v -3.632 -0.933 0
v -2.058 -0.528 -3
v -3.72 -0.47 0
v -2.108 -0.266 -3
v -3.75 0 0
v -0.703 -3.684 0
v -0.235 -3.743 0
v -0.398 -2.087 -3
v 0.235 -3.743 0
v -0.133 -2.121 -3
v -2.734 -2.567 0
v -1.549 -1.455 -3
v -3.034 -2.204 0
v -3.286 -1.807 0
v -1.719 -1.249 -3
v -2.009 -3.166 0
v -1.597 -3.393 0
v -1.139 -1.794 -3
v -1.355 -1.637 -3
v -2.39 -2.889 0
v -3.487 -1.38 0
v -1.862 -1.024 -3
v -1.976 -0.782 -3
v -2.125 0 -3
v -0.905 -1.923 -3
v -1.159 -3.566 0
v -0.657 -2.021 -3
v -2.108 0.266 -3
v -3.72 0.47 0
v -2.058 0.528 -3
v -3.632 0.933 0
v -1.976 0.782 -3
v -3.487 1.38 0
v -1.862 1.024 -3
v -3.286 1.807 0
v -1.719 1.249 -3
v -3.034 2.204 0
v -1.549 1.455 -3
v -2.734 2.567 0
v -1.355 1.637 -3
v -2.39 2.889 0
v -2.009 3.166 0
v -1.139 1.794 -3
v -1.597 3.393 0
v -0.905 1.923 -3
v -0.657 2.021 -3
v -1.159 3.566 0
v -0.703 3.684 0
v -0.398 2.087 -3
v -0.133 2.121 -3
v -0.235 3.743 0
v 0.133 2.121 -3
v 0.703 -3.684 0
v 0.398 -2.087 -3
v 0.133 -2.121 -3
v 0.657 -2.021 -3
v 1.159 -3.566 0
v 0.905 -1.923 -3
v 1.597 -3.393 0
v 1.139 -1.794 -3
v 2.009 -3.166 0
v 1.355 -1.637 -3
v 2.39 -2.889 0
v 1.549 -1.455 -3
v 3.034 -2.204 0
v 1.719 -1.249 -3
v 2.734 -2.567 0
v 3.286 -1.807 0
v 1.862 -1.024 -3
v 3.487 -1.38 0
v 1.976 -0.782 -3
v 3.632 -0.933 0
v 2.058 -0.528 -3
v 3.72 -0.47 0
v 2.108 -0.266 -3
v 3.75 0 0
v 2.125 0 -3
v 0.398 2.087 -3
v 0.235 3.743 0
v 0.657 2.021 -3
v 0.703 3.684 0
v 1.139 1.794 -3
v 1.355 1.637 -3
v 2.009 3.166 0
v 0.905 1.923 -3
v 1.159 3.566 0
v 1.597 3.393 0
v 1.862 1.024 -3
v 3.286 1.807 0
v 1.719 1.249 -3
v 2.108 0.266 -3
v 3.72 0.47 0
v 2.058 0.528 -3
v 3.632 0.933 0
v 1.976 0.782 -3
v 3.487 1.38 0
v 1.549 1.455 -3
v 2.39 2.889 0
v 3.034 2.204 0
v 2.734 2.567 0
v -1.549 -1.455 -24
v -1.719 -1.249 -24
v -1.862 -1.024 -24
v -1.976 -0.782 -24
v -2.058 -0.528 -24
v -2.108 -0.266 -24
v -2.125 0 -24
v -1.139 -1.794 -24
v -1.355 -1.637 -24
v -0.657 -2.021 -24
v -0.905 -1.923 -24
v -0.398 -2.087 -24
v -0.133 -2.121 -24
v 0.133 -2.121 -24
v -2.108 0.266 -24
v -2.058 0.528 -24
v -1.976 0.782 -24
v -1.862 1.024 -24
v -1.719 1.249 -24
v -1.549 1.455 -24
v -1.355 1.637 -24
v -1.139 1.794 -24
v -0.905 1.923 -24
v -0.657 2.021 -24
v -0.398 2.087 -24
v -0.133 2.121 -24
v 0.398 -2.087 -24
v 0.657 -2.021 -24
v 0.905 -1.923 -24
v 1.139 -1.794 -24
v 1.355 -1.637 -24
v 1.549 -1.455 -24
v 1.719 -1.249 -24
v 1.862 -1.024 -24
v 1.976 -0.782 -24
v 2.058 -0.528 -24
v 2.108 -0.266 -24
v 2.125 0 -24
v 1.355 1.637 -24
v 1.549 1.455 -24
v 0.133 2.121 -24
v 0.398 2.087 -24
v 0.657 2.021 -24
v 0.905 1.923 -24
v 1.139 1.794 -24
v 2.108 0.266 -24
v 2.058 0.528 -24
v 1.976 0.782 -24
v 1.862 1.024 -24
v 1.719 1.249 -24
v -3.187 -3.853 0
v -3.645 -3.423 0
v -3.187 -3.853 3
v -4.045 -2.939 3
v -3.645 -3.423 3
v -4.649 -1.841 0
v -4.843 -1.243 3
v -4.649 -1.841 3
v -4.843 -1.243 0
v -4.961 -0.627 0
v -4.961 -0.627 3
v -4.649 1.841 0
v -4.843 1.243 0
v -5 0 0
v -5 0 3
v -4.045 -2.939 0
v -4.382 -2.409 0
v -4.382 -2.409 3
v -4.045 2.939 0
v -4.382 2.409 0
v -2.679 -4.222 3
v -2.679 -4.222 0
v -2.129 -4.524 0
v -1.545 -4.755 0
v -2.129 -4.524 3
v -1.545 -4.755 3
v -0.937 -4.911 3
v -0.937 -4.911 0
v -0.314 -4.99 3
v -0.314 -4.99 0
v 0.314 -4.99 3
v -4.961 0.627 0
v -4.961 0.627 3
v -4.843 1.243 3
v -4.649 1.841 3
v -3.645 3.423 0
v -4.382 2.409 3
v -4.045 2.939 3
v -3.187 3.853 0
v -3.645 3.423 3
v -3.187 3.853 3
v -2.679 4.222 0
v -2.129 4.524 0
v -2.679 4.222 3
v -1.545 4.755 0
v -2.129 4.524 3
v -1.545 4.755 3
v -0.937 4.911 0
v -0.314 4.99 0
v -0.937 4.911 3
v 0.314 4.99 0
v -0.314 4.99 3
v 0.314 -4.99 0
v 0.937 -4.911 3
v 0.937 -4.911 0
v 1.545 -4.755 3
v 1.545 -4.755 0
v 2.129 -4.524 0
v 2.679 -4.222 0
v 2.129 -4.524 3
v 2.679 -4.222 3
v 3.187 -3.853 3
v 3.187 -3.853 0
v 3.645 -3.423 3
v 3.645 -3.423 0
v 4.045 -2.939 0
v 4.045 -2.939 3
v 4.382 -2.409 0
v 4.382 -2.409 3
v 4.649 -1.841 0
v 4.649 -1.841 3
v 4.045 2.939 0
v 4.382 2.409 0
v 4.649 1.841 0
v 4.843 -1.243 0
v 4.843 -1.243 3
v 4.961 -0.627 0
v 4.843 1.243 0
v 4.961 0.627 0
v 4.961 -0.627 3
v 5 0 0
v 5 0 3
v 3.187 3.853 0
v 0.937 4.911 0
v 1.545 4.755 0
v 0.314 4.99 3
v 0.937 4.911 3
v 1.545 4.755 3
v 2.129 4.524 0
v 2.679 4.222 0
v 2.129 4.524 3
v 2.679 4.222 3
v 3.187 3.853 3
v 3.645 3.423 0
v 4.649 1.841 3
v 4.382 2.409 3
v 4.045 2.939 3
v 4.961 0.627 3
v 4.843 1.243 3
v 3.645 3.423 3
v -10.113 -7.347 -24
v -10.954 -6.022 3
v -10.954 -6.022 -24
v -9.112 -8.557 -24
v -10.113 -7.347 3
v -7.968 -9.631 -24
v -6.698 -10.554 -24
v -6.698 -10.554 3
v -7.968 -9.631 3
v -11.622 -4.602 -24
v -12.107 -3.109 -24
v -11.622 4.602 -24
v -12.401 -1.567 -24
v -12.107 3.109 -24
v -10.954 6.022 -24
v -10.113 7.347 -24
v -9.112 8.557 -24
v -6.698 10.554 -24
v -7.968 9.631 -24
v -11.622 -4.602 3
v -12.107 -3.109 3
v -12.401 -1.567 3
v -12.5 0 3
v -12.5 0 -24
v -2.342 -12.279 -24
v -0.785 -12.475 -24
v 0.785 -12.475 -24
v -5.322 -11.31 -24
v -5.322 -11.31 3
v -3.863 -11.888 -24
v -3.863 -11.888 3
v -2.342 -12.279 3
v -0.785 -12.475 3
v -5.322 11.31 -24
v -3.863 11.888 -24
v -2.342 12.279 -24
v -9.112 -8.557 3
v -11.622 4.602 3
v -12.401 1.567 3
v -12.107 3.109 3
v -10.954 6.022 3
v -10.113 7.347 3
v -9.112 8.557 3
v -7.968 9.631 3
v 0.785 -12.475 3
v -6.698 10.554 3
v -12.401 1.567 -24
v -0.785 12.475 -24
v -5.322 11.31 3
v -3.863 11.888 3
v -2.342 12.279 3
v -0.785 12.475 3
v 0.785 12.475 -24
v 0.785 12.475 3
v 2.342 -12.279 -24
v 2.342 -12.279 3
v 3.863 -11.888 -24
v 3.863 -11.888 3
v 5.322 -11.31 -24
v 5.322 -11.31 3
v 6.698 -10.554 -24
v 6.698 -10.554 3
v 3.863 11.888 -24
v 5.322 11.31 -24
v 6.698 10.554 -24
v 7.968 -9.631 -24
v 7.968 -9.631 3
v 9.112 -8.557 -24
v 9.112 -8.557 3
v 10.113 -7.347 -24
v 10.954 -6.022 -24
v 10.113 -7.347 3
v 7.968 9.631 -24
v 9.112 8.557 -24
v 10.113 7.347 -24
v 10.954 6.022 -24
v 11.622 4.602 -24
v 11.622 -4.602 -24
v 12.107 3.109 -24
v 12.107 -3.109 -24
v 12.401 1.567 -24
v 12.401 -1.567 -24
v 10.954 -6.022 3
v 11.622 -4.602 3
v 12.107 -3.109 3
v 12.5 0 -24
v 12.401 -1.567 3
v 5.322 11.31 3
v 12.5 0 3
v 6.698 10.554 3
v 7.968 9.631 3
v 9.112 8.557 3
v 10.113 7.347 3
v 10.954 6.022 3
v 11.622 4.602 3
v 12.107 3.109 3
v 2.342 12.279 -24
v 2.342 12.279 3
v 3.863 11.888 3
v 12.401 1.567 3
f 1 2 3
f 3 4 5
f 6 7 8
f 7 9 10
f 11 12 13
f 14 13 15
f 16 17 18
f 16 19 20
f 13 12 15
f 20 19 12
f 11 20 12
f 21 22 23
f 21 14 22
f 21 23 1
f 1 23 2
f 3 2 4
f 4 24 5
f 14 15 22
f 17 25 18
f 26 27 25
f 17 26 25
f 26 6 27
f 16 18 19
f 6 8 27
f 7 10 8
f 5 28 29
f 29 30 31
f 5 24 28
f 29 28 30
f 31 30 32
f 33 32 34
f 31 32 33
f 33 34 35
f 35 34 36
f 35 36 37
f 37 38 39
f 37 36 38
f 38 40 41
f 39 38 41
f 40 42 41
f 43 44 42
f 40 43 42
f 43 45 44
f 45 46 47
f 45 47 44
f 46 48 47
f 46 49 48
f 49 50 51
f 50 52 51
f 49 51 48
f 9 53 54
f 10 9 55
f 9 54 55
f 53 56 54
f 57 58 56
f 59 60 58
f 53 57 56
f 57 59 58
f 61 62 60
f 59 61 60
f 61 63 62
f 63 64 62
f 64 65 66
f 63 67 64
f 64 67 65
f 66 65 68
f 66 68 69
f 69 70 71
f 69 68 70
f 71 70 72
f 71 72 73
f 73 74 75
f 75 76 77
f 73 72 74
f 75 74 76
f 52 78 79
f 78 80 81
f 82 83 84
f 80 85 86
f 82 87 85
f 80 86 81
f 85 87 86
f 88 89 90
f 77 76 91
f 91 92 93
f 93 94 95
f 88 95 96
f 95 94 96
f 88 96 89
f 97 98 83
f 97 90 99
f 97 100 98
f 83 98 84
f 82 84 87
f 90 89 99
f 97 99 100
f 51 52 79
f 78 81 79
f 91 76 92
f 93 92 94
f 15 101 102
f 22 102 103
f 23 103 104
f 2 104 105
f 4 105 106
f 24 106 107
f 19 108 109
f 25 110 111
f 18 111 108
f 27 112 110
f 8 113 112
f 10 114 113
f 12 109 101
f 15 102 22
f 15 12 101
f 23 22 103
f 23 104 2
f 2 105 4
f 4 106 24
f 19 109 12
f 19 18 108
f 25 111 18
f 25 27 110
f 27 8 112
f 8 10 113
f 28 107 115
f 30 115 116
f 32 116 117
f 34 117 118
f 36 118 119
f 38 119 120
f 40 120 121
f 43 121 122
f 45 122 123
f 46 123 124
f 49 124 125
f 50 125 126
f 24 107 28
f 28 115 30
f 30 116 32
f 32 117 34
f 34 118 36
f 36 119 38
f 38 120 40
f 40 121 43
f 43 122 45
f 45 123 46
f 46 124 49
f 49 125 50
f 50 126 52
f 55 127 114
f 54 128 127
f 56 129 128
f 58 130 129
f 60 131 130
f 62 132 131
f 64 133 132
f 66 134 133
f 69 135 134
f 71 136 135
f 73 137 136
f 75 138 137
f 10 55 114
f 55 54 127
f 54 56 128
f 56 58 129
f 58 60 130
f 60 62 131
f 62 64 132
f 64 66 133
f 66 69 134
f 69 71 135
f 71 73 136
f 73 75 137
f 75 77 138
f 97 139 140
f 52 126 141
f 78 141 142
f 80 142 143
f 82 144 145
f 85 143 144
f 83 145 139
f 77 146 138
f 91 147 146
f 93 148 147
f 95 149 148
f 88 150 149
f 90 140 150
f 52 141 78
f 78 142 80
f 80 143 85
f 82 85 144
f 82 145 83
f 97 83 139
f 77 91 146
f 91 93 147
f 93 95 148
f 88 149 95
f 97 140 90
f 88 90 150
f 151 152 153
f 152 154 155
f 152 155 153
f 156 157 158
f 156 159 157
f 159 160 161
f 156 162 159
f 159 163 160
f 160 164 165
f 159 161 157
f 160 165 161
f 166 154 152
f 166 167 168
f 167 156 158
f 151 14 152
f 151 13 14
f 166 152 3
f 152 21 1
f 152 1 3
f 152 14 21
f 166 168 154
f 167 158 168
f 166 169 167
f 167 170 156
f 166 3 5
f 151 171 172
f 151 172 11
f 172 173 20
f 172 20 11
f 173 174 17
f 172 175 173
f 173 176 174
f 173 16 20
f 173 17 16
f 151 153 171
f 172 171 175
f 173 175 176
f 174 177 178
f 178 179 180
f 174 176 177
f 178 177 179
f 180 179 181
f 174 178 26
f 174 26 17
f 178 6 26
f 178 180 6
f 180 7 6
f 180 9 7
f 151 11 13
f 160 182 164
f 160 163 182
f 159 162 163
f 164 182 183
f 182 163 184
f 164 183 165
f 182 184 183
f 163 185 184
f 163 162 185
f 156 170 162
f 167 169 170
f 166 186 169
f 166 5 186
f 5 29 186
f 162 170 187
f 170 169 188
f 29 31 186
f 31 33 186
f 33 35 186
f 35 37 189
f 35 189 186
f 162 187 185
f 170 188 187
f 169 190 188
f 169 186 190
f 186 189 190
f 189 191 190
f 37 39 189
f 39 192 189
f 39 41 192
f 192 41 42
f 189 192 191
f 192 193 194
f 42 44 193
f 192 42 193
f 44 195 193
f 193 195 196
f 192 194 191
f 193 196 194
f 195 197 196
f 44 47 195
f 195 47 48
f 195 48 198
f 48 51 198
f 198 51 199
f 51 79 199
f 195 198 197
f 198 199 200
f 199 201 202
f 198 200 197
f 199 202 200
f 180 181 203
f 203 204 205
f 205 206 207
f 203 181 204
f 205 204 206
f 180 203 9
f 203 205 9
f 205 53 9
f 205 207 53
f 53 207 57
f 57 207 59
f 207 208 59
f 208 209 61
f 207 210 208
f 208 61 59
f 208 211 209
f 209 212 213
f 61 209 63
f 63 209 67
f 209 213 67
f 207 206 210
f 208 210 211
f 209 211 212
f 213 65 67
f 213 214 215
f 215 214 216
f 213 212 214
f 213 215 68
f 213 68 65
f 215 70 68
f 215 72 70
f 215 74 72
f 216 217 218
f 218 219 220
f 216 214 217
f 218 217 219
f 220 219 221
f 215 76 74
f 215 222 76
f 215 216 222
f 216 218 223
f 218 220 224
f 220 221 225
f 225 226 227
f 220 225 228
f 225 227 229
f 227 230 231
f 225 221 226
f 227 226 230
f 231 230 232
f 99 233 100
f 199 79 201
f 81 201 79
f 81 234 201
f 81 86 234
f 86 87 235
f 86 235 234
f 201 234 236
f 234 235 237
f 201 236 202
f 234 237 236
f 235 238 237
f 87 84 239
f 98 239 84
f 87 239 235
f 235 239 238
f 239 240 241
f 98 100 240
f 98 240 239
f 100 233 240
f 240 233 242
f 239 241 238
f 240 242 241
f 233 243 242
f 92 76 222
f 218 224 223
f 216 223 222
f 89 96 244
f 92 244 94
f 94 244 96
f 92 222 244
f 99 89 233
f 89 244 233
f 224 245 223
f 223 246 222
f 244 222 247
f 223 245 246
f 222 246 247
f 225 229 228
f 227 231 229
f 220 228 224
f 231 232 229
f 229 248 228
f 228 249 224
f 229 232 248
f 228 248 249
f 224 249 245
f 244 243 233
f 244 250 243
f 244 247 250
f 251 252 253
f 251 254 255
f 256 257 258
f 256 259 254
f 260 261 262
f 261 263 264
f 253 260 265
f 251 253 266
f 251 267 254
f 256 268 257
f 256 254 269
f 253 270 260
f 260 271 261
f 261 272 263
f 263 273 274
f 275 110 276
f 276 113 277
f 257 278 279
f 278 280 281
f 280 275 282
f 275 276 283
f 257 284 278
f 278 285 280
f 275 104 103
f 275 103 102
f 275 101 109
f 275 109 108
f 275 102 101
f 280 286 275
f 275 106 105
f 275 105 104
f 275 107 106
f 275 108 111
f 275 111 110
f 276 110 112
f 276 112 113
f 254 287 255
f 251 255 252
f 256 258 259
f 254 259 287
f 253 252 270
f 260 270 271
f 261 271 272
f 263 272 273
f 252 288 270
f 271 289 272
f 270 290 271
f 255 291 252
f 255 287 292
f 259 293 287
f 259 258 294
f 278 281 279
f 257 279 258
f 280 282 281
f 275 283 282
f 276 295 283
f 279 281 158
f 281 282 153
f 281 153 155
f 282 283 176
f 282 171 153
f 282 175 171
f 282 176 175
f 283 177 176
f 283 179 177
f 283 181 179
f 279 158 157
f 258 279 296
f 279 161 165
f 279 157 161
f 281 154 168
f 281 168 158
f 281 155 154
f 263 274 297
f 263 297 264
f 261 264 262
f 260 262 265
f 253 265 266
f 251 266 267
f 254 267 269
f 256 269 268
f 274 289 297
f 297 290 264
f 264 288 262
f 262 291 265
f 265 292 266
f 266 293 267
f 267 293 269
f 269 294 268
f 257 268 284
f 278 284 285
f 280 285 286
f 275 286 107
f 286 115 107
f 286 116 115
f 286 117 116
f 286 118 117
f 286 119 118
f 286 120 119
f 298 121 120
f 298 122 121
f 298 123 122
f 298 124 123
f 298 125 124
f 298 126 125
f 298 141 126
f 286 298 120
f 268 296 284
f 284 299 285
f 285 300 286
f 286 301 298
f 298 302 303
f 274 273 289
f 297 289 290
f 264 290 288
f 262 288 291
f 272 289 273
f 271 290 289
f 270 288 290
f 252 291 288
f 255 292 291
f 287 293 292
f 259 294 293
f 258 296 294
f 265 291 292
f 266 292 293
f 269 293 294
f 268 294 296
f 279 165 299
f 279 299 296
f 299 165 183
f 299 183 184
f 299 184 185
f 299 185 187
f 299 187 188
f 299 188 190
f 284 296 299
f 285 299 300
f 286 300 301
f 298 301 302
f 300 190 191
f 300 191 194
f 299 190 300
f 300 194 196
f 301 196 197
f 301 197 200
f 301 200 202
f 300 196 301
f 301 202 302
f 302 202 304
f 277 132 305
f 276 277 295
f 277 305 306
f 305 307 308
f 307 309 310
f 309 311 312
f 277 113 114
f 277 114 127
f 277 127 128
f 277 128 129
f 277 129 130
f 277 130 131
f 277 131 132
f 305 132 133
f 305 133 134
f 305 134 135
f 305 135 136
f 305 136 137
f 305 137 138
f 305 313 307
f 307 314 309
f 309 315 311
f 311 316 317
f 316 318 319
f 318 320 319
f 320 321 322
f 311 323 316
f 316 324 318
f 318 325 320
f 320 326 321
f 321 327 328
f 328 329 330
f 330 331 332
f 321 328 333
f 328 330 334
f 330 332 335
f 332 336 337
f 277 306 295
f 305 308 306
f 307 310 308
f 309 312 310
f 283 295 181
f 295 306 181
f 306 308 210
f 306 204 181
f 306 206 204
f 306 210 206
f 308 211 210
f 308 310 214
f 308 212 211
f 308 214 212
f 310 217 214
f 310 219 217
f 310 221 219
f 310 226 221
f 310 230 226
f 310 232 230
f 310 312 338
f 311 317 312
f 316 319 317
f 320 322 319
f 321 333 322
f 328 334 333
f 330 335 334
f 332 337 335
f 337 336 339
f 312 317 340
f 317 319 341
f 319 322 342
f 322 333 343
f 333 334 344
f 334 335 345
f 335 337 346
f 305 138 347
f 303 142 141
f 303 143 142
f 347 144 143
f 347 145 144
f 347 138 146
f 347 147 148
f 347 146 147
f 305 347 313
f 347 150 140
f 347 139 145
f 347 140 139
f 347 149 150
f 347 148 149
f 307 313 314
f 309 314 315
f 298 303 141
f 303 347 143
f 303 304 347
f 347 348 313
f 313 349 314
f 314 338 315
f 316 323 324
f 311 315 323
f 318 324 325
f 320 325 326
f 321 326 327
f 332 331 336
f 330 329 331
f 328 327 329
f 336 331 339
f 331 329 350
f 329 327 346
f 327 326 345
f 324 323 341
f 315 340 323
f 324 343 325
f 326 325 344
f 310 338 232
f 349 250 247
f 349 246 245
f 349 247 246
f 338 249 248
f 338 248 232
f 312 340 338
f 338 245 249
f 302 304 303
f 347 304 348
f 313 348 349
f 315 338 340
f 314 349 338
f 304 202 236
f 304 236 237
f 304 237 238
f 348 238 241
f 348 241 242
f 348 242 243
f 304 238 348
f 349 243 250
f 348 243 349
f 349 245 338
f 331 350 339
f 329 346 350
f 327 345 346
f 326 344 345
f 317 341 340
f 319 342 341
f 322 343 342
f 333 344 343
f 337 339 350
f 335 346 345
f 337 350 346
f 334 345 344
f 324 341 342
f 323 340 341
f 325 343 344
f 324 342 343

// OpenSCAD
$fn = 50;


difference() {
	union() {
		translate(v = [0, 0, -24.0000000000]) {
			cylinder(h = 27, r = 12.5000000000);
		}
	}
	union() {
		translate(v = [0, 0, 0]) {
			rotate(a = [0, 0, 0]) {
				difference() {
					union() {
						translate(v = [0, 0, -27.0000000000]) {
							cylinder(h = 27, r = 2.0000000000);
						}
						translate(v = [0, 0, -3]) {
							cylinder(h = 3, r1 = 2.1250000000, r2 = 3.7500000000);
						}
						translate(v = [0, 0, -27.0000000000]) {
							cylinder(h = 27, r = 2.1250000000);
						}
						translate(v = [0, 0, -27.0000000000]) {
							cylinder(h = 27, r = 2.0000000000);
						}
					}
					union();
				}
			}
		}
		#cylinder(h = 3, r = 5.0000000000);
	}
}
